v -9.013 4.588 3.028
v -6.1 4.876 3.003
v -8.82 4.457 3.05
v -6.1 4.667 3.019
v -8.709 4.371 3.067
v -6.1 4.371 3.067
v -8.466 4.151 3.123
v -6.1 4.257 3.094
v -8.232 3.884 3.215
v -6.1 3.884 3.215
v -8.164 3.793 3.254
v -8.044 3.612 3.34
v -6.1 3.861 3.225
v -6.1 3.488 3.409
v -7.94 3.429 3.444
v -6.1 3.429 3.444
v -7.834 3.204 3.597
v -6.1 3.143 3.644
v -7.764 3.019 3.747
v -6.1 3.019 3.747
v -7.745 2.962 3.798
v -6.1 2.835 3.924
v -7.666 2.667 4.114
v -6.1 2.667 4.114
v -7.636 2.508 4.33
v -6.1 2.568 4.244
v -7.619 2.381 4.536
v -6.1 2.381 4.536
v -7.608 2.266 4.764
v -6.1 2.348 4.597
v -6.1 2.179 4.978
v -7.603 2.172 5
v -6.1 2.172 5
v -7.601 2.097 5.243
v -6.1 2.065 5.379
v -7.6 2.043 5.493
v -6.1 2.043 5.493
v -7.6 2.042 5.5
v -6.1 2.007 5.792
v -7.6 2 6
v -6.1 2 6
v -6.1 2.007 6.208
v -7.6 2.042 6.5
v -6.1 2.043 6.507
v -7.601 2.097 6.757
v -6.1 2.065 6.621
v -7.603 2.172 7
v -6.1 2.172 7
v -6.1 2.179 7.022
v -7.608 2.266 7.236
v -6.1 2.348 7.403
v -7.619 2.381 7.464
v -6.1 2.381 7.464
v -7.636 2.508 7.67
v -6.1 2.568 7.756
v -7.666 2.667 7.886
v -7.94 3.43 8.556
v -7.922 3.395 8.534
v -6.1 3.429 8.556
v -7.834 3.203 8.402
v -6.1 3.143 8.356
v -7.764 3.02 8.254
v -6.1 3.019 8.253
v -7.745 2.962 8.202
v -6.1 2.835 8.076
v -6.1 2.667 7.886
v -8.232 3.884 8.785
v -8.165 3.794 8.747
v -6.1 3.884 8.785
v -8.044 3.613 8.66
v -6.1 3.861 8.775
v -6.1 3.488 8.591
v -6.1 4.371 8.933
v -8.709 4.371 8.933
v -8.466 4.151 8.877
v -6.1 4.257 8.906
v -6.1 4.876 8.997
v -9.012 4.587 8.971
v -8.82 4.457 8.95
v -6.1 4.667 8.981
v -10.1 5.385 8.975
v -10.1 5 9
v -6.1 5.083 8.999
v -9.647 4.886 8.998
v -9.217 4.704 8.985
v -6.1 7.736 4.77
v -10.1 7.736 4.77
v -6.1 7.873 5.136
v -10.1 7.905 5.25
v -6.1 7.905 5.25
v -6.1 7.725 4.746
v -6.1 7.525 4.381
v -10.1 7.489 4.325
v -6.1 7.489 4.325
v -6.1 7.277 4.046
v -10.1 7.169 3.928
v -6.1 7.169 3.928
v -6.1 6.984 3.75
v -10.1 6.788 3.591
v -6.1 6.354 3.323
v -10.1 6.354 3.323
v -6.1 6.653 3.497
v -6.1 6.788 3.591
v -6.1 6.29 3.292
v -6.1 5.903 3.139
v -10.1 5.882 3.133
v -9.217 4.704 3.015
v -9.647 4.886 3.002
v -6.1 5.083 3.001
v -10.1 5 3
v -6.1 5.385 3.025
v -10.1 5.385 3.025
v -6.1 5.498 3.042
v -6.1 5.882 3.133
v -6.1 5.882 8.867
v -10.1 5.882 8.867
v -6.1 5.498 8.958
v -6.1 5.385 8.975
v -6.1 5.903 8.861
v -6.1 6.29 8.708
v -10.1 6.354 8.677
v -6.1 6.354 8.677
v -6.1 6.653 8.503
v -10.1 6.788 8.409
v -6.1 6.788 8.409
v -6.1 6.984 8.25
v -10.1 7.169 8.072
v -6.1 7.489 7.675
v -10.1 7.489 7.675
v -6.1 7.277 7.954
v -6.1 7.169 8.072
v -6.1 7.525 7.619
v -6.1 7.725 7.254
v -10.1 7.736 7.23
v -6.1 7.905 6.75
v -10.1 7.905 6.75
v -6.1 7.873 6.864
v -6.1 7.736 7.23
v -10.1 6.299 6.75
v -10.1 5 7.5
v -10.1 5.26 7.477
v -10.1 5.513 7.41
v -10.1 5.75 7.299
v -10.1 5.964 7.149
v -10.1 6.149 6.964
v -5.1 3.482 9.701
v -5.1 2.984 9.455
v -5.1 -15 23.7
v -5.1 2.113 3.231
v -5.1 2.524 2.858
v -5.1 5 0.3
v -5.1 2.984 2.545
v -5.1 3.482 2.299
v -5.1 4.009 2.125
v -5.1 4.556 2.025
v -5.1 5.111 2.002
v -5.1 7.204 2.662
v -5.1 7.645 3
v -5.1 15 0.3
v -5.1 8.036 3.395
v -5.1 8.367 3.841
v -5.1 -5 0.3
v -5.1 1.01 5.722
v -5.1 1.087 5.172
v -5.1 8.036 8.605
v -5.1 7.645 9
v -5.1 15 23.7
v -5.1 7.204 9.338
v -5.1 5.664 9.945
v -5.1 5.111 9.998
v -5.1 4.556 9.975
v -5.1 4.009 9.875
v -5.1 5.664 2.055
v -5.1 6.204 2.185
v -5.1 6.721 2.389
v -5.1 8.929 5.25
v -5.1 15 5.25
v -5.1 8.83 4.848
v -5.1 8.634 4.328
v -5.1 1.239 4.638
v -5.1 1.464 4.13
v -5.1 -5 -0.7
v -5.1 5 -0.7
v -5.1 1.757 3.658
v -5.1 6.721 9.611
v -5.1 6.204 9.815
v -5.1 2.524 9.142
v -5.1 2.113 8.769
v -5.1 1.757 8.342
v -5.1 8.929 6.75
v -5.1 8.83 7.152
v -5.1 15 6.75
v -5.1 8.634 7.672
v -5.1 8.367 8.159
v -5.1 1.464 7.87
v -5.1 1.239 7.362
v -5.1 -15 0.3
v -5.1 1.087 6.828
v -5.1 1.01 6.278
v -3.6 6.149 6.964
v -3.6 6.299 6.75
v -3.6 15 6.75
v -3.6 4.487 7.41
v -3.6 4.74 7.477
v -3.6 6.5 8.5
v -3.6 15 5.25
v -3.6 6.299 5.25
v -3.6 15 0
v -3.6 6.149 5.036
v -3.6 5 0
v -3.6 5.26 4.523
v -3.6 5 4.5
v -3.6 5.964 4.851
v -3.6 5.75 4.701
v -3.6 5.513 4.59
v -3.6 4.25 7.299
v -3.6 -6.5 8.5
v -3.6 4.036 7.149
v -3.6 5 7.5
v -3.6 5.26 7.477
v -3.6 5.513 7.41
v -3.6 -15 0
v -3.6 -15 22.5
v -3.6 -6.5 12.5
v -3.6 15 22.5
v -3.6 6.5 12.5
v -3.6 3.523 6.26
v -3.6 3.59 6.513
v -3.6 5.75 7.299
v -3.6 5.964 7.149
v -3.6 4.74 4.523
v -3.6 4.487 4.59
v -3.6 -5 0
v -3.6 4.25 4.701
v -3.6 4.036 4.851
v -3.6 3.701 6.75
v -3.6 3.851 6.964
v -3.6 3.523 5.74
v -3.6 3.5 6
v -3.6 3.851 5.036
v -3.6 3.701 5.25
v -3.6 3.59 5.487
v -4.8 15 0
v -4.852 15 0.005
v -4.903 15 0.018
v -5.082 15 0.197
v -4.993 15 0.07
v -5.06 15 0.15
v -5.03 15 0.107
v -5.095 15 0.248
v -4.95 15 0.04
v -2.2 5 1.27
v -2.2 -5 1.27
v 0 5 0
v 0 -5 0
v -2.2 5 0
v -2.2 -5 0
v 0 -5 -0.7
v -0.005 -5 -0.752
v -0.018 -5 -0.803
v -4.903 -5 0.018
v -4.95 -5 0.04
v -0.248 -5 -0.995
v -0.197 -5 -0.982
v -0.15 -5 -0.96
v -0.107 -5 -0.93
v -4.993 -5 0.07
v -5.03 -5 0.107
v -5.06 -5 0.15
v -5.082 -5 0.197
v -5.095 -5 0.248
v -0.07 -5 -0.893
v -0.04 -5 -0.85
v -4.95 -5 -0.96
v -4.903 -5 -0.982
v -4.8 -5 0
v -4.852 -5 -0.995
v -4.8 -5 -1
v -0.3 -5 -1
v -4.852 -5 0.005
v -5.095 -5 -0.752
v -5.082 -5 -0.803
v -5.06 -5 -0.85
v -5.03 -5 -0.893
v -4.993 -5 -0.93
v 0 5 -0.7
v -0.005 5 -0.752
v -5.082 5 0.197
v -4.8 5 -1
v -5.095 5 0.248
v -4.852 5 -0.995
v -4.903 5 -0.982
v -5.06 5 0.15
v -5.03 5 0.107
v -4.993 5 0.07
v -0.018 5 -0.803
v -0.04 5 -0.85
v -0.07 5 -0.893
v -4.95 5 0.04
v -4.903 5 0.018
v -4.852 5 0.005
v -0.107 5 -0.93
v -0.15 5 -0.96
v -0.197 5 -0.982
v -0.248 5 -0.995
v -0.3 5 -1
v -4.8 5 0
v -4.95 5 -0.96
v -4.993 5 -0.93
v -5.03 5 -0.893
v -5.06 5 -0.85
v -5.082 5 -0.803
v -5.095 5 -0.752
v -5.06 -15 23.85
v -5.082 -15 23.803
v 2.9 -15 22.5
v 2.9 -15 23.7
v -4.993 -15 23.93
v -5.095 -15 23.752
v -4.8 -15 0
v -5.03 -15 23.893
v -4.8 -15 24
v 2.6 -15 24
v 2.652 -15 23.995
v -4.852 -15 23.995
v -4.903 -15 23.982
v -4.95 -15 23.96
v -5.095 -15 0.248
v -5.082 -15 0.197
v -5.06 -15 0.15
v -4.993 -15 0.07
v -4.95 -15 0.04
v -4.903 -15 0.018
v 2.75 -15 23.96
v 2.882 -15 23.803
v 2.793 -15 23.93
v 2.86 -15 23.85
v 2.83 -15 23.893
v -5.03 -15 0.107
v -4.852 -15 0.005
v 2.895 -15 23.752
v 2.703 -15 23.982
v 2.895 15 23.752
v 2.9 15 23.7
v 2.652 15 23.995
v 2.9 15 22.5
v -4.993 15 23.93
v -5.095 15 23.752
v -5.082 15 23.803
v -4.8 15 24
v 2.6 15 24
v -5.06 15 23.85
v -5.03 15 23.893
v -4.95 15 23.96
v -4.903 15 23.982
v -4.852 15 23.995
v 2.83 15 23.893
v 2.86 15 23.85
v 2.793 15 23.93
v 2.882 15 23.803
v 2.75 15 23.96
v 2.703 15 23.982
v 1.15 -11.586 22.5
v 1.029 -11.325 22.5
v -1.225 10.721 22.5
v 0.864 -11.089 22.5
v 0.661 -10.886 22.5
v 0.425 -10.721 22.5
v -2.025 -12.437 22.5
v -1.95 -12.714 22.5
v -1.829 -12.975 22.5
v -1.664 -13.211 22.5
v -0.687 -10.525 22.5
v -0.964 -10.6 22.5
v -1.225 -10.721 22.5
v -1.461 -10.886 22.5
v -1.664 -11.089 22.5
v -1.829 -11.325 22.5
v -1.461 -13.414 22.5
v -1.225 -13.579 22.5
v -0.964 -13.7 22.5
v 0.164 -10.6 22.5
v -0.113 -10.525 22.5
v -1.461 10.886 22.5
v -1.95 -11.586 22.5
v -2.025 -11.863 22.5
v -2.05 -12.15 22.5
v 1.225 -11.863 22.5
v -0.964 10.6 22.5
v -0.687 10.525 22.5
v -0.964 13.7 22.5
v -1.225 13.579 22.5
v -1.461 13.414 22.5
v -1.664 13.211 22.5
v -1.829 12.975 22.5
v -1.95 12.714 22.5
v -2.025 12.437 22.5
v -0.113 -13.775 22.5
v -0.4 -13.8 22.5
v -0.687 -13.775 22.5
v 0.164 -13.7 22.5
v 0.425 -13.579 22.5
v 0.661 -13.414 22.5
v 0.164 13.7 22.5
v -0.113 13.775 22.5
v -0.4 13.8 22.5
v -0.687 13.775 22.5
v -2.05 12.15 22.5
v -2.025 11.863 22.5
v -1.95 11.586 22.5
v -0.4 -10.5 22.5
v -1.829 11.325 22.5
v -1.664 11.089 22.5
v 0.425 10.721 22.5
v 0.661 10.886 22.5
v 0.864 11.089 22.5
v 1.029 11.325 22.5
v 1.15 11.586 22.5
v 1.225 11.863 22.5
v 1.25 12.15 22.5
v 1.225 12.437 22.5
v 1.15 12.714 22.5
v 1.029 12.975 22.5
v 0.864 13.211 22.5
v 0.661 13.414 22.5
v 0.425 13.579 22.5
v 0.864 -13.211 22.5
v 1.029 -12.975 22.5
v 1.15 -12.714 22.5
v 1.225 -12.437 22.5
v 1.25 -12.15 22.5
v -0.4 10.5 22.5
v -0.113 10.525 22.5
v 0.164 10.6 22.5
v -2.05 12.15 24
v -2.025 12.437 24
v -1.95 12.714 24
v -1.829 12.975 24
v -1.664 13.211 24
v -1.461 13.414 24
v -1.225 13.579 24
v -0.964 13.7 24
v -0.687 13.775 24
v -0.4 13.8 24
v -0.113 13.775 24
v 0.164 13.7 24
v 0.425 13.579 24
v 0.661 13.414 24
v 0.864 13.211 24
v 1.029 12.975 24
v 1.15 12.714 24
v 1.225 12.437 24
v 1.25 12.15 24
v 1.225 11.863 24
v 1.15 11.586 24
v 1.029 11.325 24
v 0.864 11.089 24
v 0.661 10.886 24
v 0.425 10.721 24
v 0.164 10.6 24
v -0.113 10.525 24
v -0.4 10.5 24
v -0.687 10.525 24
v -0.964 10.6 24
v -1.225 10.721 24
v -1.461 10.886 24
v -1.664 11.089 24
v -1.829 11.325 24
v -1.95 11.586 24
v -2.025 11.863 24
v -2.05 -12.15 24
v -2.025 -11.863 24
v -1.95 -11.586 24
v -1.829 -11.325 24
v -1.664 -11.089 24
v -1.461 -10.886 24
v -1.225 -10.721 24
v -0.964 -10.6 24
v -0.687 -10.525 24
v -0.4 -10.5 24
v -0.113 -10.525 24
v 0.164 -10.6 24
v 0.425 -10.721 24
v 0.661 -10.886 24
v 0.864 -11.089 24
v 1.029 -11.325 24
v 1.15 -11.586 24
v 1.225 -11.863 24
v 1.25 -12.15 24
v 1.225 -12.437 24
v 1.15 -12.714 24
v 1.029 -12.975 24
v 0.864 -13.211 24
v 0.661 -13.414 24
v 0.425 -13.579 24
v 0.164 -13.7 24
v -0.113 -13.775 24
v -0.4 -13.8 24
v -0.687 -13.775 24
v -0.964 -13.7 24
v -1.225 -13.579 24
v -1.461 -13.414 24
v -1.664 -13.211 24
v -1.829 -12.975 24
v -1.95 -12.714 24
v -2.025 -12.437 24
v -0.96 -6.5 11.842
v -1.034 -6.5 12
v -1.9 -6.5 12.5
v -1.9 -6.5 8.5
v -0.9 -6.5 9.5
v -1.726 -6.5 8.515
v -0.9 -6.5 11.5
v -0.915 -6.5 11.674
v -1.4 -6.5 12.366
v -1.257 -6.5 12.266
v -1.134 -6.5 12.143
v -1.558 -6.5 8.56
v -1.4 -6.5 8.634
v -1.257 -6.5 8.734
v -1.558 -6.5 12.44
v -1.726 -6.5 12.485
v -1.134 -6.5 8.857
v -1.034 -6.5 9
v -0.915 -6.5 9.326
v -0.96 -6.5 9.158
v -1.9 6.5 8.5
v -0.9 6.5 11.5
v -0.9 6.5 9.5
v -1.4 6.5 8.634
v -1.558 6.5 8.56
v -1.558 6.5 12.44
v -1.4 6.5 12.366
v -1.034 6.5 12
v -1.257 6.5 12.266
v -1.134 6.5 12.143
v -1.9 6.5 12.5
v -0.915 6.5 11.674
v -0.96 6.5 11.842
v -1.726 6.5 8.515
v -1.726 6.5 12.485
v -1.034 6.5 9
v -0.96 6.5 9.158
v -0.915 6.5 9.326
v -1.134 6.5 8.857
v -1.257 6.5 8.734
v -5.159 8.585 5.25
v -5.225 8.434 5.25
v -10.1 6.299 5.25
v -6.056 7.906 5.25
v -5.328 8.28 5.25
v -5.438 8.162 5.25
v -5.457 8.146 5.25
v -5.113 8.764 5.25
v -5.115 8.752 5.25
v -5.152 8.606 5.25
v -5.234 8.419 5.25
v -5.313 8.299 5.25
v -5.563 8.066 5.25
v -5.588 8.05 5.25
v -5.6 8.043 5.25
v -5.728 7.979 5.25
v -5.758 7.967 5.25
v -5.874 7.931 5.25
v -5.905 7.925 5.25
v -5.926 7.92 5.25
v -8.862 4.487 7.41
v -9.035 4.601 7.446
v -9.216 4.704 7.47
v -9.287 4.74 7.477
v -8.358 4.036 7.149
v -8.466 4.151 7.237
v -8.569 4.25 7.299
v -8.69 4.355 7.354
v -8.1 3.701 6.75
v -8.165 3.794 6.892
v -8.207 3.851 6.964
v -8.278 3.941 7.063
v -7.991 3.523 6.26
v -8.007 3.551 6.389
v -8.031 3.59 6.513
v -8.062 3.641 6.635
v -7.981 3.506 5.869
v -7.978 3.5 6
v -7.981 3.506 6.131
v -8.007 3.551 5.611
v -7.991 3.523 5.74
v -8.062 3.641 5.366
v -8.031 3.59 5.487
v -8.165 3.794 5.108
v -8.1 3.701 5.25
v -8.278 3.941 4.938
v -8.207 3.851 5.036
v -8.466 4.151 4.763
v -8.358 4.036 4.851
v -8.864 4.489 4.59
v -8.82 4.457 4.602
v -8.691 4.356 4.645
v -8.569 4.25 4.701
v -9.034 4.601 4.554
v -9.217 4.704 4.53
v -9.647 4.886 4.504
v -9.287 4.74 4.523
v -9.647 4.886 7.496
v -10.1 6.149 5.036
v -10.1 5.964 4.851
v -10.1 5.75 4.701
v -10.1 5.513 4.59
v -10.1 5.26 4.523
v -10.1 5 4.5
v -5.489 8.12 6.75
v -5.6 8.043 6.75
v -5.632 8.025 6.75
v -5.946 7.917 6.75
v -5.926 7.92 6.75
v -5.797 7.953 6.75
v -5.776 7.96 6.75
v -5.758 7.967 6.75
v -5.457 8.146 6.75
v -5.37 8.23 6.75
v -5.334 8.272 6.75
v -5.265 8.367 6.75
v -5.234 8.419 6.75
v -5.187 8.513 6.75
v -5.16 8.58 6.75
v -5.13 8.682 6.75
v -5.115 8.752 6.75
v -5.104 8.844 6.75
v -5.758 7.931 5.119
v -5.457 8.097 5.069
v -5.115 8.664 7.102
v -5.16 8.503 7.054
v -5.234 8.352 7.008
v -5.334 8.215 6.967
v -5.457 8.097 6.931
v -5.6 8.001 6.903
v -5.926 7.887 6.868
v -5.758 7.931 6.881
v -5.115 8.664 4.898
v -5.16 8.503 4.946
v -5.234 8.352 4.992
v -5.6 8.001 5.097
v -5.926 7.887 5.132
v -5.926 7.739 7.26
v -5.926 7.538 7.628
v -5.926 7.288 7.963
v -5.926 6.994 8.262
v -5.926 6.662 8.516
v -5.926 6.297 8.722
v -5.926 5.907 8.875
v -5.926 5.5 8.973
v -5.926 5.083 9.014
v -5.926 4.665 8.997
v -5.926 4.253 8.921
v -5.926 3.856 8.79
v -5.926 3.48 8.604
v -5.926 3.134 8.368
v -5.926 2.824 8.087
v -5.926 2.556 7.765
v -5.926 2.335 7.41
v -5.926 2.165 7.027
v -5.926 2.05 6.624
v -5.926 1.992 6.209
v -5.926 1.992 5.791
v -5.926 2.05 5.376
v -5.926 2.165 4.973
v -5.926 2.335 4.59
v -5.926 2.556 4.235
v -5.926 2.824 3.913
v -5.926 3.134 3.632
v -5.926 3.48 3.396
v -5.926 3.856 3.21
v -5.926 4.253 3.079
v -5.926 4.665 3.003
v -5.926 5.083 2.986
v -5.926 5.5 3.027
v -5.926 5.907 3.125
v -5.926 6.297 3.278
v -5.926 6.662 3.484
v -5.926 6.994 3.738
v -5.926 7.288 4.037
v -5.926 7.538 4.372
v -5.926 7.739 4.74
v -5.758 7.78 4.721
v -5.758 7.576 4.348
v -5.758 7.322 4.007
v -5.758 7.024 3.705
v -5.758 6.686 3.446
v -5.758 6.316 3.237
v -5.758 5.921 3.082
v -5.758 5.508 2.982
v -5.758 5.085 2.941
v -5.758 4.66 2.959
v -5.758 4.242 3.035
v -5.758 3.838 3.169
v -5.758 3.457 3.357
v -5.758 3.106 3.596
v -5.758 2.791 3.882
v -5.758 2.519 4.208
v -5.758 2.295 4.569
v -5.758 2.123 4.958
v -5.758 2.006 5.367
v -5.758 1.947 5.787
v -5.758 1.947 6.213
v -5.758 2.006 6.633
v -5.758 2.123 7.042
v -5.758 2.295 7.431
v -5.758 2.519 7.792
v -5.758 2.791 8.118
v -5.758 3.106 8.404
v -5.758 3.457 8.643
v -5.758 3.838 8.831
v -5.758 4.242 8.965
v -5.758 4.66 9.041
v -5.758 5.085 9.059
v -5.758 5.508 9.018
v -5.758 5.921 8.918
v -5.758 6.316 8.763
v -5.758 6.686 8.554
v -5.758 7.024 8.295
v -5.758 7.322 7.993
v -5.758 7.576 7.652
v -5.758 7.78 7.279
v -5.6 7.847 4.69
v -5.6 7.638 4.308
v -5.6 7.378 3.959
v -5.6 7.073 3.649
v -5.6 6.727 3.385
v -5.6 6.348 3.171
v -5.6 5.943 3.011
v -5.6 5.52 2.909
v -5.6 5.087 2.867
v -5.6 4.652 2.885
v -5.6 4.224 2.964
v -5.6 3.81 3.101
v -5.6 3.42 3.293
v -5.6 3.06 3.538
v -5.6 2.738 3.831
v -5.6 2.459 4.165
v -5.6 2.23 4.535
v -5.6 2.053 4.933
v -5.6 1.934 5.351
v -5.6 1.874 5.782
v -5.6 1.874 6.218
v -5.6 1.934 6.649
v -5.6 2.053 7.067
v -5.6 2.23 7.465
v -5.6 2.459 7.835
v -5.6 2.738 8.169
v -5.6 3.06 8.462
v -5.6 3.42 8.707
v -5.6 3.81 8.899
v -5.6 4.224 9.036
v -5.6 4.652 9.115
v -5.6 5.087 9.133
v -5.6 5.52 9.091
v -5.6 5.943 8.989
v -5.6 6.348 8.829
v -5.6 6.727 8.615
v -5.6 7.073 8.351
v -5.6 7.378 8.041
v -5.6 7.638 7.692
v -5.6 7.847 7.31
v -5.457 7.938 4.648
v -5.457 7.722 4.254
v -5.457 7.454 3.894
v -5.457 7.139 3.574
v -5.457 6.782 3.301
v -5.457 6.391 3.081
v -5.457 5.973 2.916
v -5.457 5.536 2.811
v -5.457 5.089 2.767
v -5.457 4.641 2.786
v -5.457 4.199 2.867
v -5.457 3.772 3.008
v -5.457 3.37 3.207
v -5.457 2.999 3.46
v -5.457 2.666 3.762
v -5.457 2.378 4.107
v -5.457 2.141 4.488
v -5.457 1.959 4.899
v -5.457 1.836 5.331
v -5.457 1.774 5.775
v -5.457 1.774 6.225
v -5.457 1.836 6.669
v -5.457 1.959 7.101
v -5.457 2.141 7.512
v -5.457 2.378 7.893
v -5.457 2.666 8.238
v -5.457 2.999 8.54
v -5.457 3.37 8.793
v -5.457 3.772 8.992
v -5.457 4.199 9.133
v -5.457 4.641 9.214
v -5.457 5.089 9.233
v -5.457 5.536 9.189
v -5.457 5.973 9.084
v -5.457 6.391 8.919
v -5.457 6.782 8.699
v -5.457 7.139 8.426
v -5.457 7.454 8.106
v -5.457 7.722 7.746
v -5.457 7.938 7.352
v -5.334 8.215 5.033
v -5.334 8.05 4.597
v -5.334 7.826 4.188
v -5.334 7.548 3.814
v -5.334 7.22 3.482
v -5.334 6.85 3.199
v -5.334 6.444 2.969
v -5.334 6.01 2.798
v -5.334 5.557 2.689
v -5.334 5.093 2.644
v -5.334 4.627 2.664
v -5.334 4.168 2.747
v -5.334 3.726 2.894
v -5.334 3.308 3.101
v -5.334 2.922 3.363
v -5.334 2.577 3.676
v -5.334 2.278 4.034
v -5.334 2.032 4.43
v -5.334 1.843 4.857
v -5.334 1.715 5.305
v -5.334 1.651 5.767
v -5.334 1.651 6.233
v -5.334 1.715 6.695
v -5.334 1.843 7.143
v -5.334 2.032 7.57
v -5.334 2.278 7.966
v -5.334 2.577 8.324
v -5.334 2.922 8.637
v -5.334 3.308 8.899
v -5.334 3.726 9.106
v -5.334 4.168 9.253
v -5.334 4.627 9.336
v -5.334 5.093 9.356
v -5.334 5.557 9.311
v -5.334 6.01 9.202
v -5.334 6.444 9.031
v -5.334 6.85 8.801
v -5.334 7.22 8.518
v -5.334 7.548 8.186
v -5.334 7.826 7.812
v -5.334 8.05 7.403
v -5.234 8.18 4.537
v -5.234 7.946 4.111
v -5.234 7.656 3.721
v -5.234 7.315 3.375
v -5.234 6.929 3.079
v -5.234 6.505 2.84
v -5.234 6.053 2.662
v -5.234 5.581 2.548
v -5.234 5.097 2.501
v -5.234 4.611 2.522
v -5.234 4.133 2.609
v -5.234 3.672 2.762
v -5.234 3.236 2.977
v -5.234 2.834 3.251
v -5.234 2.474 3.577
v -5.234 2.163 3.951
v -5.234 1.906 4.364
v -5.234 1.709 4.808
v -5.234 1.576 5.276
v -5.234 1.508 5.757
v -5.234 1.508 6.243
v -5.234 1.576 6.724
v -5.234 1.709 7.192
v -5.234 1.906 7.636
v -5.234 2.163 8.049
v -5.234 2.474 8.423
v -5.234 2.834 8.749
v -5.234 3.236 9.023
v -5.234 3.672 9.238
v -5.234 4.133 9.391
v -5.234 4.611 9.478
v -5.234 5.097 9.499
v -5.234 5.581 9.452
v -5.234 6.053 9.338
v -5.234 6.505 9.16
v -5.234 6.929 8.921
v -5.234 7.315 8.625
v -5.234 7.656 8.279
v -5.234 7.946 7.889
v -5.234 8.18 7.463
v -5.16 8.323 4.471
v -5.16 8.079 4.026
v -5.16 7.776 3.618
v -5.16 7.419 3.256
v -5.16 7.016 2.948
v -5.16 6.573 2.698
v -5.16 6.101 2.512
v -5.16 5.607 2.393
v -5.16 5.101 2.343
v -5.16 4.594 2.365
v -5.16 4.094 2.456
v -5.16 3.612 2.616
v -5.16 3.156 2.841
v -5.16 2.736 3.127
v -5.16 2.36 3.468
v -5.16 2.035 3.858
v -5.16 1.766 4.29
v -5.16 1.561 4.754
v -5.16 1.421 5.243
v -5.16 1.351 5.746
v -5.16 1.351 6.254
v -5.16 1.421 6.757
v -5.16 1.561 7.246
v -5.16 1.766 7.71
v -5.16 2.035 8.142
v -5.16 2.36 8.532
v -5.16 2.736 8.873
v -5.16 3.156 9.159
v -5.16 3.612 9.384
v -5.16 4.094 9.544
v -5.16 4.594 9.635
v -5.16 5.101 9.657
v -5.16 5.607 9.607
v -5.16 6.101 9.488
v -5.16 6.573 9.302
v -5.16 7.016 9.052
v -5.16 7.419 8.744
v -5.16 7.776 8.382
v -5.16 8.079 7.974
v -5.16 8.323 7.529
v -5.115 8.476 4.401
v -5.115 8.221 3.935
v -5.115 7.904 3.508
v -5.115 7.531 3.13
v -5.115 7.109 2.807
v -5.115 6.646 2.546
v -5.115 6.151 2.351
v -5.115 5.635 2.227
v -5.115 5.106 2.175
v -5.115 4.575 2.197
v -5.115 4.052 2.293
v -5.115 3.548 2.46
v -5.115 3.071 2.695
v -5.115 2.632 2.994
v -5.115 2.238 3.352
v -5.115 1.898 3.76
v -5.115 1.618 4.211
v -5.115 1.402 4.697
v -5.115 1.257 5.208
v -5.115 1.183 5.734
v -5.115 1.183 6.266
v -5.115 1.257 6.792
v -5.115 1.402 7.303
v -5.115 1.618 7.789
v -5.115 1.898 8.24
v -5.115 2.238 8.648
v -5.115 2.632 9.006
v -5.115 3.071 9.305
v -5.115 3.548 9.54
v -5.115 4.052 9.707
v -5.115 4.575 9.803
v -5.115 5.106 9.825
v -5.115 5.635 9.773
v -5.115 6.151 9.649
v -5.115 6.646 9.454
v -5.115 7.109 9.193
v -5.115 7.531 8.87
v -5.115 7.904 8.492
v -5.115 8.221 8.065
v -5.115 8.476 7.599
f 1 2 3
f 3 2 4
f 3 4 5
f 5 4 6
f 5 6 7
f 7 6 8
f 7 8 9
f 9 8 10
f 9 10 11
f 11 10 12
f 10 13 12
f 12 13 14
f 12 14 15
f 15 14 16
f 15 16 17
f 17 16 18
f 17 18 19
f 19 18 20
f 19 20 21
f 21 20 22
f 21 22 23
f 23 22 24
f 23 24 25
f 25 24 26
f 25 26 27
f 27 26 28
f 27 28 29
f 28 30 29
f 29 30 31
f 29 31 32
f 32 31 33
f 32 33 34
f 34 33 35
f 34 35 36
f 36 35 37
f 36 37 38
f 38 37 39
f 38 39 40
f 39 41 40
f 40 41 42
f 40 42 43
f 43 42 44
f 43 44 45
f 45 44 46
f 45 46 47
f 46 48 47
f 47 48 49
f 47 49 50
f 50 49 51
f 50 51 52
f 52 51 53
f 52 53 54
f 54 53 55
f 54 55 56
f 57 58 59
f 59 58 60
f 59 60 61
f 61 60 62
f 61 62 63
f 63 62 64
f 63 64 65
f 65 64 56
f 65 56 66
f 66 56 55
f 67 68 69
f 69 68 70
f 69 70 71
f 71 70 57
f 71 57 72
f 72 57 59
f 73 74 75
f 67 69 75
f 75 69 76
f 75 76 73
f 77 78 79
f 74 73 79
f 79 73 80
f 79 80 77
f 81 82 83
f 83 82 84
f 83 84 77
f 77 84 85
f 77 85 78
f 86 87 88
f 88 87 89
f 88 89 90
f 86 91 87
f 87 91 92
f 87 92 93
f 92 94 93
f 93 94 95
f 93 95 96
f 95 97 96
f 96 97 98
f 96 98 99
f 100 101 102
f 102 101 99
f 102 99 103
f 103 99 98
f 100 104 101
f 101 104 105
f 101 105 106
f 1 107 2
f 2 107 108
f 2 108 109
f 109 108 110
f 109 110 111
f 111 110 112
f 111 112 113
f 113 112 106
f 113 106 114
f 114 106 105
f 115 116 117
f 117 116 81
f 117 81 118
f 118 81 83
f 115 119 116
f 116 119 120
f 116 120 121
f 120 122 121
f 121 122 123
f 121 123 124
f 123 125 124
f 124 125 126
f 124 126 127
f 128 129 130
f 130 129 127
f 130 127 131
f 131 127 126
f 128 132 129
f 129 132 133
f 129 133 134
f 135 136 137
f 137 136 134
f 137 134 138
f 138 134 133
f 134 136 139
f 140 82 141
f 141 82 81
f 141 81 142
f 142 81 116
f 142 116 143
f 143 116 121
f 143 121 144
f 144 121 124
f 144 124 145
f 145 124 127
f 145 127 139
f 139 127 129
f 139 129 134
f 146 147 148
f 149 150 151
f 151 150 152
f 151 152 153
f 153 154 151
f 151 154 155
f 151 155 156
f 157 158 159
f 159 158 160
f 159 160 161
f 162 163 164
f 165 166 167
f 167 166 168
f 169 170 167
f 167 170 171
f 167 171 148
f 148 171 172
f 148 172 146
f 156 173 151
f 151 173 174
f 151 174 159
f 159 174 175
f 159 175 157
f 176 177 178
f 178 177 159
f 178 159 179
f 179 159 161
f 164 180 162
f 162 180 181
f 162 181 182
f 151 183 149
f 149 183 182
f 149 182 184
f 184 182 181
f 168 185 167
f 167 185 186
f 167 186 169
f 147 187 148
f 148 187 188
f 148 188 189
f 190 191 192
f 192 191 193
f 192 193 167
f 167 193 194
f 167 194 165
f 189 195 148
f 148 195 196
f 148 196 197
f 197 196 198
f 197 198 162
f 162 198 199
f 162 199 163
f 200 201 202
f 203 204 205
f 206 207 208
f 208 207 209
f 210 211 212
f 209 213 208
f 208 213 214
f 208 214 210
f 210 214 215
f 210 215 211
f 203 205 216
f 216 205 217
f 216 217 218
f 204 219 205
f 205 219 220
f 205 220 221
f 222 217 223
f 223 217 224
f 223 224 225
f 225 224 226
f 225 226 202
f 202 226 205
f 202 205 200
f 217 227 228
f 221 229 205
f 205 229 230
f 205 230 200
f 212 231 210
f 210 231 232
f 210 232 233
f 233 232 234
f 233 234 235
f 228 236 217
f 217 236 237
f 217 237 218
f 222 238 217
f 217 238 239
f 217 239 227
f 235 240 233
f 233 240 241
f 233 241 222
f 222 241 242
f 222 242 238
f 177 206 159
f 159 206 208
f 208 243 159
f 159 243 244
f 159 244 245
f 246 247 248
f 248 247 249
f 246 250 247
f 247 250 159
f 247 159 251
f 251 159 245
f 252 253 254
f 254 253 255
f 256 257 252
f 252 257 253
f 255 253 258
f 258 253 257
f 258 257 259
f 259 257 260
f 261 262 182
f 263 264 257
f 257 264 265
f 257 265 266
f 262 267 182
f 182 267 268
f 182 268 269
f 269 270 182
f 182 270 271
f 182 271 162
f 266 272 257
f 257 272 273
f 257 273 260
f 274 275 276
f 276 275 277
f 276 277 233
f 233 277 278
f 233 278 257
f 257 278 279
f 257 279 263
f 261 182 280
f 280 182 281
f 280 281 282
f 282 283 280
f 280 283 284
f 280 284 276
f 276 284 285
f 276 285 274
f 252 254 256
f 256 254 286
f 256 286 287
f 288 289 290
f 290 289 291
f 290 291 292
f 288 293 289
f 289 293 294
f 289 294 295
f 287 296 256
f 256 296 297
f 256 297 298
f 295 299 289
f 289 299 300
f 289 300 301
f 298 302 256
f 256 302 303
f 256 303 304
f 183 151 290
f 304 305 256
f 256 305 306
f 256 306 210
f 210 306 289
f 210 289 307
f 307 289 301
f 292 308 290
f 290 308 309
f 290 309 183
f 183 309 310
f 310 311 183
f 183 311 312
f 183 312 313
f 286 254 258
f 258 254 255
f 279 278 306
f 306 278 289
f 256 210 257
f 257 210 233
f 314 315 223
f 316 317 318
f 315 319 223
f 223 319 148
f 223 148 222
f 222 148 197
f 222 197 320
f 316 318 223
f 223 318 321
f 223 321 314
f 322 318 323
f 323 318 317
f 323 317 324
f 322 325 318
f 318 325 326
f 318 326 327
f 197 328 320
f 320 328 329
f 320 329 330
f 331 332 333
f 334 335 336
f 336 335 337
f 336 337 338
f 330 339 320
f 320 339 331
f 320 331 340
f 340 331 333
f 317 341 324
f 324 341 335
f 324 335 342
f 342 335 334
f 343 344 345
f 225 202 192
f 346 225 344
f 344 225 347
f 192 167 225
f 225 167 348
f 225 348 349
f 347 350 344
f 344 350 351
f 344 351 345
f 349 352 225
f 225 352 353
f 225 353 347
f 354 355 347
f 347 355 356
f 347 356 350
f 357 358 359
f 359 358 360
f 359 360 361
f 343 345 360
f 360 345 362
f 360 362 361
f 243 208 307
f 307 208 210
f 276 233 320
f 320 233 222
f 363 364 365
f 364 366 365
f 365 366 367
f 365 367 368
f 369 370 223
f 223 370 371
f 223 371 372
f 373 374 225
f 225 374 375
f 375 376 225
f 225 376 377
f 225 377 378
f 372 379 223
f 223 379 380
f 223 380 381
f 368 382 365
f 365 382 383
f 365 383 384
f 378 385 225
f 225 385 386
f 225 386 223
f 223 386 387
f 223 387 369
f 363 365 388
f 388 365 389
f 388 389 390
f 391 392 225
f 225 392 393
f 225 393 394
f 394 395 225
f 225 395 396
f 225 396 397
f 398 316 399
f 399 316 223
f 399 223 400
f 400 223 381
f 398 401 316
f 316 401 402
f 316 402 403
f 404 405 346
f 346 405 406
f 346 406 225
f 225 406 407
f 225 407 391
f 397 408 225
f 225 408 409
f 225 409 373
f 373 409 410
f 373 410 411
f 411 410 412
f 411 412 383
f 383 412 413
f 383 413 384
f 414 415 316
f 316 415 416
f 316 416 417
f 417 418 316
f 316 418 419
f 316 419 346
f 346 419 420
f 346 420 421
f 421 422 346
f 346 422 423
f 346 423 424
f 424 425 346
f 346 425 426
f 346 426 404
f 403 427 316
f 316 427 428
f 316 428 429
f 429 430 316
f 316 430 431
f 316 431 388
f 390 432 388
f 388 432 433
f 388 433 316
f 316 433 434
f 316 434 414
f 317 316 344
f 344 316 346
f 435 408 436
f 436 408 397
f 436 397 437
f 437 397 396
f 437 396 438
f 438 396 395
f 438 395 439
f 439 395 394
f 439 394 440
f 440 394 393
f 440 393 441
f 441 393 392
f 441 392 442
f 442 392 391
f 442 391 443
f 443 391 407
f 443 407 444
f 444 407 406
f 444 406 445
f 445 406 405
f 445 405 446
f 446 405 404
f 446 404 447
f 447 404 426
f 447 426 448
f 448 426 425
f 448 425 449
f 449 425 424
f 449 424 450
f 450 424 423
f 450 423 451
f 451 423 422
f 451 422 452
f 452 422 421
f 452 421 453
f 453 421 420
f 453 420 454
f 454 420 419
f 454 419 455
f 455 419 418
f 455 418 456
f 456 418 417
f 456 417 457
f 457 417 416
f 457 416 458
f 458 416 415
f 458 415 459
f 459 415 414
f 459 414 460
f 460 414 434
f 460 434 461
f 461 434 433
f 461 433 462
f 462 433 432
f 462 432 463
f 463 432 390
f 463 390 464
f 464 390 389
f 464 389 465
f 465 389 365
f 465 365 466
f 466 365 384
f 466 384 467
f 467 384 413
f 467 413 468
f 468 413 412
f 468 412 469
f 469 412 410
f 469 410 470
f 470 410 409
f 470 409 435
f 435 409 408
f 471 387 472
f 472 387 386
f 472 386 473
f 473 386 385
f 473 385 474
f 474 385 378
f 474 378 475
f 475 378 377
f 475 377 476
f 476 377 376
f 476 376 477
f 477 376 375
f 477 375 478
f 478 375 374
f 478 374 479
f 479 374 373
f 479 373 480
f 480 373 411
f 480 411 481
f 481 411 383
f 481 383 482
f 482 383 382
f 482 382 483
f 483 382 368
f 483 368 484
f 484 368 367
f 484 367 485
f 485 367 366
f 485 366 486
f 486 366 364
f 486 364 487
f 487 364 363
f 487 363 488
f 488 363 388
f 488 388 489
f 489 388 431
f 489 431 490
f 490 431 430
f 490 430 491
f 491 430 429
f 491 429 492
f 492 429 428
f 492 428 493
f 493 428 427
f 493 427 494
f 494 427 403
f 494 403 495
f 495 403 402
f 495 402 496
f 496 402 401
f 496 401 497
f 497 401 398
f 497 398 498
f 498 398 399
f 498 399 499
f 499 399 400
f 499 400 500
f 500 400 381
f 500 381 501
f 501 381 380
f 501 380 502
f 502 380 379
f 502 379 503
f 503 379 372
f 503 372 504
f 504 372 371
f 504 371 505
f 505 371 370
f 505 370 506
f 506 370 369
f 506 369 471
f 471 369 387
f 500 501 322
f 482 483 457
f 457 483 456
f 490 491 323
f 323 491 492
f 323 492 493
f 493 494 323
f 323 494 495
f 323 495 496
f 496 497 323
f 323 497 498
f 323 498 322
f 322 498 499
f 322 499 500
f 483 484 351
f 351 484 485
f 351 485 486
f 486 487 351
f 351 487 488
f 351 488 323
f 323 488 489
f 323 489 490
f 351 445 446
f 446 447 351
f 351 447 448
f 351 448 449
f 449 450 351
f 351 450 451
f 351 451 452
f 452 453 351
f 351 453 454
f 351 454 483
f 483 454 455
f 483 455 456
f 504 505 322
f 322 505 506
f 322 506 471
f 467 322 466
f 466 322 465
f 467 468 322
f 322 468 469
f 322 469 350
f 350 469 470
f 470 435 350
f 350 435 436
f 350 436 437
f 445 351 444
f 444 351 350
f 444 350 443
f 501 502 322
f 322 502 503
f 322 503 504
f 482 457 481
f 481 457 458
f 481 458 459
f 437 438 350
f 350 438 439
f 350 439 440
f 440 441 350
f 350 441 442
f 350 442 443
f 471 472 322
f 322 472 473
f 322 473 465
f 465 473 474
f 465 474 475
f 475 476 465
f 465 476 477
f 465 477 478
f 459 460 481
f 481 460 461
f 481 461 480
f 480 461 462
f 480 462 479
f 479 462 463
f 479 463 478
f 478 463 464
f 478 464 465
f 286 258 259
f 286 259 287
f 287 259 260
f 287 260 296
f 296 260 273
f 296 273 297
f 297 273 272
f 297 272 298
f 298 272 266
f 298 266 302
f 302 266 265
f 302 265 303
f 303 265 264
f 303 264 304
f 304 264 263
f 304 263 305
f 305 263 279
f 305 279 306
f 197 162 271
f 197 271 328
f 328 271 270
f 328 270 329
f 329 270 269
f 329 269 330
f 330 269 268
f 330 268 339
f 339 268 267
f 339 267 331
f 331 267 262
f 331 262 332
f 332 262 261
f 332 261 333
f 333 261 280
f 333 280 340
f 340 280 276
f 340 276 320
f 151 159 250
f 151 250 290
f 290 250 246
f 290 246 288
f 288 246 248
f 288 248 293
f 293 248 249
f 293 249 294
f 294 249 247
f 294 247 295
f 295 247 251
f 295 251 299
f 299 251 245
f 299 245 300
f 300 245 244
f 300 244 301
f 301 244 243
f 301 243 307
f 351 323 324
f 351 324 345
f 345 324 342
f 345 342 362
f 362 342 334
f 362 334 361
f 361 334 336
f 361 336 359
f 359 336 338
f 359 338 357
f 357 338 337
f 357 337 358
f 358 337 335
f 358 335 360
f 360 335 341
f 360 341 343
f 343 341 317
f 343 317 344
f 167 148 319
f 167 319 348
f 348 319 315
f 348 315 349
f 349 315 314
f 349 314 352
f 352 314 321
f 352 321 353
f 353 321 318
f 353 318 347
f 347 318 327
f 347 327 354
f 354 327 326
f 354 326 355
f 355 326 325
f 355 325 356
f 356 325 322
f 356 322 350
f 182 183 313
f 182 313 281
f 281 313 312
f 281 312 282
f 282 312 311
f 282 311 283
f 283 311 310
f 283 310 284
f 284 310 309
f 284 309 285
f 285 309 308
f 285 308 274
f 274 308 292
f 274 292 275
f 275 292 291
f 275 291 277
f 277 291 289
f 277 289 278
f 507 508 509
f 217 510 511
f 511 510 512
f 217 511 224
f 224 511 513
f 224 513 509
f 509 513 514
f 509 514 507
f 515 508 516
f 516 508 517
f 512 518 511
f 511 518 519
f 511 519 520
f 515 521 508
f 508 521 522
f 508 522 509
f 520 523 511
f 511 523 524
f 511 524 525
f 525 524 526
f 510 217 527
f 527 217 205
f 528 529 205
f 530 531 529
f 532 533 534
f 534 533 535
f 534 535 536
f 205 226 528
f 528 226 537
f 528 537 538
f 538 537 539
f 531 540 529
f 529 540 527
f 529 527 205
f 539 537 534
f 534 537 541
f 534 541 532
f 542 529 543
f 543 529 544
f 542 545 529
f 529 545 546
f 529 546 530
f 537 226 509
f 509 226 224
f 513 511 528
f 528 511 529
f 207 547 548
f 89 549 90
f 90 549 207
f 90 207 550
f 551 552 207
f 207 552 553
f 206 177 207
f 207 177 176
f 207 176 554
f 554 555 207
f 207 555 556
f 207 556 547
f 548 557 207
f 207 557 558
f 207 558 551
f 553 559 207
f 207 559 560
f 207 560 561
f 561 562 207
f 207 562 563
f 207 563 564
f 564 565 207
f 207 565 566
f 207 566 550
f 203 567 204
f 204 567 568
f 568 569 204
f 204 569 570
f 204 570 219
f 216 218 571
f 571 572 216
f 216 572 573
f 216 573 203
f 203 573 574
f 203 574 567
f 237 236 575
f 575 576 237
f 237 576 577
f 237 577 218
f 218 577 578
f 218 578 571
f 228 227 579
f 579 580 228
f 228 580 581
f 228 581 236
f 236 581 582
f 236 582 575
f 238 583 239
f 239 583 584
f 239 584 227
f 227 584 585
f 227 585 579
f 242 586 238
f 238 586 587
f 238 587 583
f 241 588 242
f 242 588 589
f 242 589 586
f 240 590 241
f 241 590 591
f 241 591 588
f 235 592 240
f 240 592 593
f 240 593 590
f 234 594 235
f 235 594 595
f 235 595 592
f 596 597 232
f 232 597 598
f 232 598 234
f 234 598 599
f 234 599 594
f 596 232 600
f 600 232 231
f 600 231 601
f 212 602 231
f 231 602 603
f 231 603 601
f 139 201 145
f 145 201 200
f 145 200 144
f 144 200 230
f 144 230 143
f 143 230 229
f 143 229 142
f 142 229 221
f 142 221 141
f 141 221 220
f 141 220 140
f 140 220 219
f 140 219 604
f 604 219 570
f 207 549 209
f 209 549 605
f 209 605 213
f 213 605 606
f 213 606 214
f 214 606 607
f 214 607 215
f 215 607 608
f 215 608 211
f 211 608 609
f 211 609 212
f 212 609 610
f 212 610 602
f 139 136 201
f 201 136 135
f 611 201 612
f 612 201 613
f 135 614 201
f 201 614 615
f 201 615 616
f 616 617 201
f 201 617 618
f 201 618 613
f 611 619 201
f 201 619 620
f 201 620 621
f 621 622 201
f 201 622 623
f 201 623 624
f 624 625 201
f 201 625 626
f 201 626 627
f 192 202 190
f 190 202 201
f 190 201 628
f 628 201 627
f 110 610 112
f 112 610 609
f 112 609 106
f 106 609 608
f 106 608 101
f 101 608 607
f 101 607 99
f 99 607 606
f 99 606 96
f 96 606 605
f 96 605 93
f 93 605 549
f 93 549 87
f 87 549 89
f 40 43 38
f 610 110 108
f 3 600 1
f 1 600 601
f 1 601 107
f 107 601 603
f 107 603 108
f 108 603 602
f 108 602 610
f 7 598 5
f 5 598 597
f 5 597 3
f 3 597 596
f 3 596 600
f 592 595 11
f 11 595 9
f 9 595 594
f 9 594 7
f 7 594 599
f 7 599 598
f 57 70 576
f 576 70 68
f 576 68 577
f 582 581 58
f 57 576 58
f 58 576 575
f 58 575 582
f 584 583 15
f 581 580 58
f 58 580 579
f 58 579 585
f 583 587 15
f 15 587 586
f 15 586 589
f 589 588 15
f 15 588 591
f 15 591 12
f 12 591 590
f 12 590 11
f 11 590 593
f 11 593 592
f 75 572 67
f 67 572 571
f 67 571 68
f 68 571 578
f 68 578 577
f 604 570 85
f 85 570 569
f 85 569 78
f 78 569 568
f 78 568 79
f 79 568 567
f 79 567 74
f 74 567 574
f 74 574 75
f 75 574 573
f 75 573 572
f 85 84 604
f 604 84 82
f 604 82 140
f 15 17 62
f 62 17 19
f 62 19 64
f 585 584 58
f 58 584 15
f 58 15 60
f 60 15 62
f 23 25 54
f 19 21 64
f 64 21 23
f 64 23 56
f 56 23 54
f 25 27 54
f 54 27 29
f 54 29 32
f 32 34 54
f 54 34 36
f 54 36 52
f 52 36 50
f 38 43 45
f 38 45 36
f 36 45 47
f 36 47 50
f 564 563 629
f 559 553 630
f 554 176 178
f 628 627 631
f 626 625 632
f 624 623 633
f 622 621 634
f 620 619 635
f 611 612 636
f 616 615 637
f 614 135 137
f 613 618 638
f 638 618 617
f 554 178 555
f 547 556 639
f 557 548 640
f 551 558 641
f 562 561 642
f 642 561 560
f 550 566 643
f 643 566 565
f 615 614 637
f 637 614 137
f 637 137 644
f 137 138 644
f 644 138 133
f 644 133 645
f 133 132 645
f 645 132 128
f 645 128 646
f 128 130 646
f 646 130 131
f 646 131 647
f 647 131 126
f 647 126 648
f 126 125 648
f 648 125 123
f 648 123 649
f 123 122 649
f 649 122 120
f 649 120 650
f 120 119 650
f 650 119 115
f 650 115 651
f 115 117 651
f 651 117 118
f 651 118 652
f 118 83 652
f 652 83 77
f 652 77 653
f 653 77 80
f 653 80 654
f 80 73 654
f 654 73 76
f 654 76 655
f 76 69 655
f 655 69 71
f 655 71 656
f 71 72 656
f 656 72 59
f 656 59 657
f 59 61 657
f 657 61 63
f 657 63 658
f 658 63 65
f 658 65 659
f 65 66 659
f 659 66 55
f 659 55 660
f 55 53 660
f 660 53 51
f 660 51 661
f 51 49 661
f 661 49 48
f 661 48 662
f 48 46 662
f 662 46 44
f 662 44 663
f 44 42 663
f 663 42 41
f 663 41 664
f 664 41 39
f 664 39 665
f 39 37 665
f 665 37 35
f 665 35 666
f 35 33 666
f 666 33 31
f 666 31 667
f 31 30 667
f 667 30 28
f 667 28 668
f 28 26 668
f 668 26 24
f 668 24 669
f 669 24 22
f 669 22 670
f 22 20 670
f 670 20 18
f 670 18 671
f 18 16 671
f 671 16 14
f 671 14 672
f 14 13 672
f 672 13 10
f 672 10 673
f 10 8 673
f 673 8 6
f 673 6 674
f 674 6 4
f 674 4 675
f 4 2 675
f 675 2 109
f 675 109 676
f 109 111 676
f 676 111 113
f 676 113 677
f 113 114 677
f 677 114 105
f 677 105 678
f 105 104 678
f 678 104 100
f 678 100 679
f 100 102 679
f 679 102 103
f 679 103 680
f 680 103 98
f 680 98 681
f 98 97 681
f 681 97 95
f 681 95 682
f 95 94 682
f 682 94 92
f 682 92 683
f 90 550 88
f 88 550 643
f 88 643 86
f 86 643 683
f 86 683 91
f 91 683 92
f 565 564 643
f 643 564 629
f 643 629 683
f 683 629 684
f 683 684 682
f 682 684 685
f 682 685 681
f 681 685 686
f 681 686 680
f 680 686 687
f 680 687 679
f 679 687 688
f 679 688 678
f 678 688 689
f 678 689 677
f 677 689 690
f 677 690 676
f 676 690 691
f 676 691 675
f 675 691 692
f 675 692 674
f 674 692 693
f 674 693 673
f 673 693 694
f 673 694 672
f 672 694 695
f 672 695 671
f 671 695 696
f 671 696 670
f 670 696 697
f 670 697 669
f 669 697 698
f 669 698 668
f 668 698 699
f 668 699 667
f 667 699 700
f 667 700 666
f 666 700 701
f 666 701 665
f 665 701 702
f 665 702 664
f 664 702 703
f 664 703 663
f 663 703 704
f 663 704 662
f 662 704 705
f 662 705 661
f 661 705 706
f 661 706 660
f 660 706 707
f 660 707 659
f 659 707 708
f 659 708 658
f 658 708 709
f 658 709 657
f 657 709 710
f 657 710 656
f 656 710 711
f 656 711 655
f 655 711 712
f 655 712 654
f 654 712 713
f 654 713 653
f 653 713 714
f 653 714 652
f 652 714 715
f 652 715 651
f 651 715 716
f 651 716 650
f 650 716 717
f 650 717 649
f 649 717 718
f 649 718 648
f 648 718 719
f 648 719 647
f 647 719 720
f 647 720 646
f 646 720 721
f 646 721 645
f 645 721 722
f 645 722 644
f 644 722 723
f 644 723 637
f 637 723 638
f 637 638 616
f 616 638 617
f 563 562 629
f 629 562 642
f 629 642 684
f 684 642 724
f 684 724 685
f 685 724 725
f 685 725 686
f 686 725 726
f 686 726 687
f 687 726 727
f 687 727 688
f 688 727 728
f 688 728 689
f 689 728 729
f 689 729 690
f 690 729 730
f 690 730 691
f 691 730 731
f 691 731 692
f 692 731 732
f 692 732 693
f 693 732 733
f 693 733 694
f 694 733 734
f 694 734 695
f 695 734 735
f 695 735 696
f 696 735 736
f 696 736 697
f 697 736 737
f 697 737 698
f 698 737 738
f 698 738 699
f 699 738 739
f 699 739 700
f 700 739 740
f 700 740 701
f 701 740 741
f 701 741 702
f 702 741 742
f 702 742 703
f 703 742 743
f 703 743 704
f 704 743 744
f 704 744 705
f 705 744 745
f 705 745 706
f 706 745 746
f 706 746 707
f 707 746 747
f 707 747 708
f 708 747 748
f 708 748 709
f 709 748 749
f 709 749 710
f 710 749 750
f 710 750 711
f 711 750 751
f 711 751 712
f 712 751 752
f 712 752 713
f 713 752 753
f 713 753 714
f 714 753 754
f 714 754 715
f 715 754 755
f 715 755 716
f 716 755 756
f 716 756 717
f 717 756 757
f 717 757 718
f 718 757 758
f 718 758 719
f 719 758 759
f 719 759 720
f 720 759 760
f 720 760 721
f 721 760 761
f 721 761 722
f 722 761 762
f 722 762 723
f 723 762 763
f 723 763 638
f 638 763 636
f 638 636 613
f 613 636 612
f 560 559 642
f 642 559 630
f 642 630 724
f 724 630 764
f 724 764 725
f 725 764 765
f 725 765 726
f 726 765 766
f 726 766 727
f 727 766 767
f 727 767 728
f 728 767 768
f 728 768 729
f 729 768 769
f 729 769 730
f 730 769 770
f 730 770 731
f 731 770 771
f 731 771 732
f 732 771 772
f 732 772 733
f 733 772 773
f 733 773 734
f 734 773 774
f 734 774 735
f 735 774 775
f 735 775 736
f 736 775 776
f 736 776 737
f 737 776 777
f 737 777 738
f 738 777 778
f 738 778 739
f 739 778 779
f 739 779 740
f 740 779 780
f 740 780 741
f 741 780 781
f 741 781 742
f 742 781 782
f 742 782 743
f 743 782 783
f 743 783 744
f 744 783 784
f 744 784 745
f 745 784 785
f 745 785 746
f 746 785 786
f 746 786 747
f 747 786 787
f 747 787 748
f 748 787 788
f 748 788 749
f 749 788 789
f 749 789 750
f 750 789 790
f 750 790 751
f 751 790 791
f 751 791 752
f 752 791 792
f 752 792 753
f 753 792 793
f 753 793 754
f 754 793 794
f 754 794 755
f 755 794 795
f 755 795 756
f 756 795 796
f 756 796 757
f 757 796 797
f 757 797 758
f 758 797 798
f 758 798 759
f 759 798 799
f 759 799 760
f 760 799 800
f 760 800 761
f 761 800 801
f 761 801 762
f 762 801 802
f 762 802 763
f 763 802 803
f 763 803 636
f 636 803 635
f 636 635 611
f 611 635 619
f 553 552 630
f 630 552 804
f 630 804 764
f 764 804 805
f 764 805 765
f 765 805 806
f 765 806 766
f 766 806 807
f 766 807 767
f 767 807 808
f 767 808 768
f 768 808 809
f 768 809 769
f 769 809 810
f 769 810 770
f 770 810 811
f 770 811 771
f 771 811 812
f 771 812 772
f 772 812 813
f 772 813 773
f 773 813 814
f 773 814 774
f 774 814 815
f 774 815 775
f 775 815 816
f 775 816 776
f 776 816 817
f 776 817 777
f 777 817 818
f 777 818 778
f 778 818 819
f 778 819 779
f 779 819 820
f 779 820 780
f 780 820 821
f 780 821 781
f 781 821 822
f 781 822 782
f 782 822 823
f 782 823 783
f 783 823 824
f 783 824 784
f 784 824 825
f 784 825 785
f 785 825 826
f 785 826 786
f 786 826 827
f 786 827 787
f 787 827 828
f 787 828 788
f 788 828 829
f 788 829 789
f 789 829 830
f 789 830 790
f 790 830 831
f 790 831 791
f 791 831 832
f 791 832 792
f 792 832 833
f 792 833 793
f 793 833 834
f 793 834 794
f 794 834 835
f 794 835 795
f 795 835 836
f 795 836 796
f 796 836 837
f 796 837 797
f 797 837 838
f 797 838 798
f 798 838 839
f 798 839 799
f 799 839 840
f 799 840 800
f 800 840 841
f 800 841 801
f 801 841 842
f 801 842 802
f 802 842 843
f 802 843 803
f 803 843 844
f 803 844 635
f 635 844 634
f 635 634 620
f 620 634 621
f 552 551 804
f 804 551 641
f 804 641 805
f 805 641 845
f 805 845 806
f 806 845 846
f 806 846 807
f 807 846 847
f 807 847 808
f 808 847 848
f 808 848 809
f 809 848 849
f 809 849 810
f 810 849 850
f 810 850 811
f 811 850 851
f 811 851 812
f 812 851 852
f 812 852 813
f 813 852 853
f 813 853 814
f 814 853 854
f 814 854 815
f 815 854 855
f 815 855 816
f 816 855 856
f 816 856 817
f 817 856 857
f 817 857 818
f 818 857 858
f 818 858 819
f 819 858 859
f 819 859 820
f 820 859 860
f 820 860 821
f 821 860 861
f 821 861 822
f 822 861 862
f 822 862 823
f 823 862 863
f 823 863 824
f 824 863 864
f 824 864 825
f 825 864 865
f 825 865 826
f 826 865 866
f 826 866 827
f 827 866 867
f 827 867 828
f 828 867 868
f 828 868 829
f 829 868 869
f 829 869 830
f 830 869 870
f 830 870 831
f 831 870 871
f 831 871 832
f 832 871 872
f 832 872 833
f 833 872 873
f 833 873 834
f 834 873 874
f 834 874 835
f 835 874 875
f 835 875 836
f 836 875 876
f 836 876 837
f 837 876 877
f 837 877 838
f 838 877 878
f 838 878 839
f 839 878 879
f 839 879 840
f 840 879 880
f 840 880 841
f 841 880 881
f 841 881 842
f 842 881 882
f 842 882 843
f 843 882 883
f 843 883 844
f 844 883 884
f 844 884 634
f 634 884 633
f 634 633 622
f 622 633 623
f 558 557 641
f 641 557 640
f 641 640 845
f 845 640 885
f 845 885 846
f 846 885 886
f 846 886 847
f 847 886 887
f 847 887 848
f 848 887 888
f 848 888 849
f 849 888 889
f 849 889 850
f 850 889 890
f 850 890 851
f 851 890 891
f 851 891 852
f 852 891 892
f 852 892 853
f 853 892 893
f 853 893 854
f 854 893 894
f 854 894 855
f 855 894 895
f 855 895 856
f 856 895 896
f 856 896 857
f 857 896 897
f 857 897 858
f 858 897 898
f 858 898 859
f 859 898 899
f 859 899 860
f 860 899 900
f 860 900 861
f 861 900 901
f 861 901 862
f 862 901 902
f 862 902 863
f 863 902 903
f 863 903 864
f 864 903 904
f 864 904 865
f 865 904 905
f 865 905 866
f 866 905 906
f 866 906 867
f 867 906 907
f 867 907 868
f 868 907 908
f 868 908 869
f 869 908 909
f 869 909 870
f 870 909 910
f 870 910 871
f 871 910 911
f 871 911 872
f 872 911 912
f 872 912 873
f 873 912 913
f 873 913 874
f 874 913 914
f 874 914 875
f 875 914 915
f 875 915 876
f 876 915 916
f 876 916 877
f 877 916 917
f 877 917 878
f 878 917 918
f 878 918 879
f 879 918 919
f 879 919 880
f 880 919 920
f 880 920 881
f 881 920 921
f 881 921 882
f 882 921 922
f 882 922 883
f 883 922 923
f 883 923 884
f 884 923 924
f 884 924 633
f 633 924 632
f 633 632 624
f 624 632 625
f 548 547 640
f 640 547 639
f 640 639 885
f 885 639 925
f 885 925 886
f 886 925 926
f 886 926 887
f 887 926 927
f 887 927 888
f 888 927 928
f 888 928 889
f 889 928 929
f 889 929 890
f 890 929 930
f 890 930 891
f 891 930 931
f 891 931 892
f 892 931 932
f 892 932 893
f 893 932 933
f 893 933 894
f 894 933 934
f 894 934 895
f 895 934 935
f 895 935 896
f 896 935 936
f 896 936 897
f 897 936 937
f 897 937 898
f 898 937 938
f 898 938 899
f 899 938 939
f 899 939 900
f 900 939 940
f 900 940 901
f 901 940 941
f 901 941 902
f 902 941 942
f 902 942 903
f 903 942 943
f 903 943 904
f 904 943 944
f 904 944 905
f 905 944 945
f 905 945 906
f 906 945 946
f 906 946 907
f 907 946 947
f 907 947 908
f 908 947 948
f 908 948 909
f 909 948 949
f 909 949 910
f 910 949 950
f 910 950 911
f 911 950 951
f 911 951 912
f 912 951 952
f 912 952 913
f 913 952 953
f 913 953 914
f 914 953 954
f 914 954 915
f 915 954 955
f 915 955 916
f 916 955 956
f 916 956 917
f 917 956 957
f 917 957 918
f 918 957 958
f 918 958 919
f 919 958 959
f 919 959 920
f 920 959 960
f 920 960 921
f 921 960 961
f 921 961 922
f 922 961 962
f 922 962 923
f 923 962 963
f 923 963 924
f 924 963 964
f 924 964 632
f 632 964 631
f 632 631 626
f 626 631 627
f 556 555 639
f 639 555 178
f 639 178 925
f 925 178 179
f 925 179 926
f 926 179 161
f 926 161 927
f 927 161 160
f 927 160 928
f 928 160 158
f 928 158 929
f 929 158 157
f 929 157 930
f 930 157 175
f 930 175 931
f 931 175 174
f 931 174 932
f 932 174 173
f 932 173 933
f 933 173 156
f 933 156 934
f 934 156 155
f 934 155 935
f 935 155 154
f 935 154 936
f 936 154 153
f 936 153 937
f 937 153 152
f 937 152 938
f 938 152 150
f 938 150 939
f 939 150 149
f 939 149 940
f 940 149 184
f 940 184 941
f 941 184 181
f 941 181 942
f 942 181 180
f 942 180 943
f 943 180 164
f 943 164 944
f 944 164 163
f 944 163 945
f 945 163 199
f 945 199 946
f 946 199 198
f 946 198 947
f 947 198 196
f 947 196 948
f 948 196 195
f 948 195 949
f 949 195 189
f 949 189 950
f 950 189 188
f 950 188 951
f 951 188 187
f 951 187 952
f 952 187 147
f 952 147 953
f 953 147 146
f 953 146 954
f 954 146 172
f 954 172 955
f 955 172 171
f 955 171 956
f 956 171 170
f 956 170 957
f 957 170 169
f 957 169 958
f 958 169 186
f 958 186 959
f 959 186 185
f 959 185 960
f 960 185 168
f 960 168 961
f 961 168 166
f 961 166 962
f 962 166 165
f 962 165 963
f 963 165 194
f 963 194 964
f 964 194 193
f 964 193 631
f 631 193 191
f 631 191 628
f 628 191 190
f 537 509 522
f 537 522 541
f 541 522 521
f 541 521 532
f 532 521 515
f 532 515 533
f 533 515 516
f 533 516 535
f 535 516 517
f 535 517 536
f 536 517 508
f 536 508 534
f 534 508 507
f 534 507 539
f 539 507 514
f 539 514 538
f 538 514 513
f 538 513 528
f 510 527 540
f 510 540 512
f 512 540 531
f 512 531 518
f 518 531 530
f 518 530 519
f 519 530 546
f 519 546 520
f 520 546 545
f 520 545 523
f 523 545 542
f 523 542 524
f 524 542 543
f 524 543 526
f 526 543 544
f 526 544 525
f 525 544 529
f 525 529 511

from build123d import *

# Parameters (mm, degrees)
BOSS_EXTRUDE1_DEPTH      = 5
BOSS_EXTRUDE1_DEPTH_BACK = 5
SKETCH2_W                = 3.6
SKETCH2_H                = 10
BOSS_EXTRUDE2_DEPTH      = 1
SKETCH3_W                = 1
SKETCH3_H                = 10
BOSS_EXTRUDE3_DEPTH      = 1.5
SKETCH4_W                = 1.5
SKETCH4_H                = 30
SKETCH4_W_2              = 6.5
SKETCH4_R                = 1.65
BOSS_EXTRUDE4_DEPTH      = 1.5
FILLET1_R                = 0.3
SKETCH5_W                = 4
SKETCH5_H                = 13
BOSS_EXTRUDE5_DEPTH      = 2.7
CUT_EXTRUDE1_DEPTH       = 30.038767191
BOSS_EXTRUDE6_START      = -1.5
BOSS_EXTRUDE6_DEPTH      = 5
CUT_EXTRUDE2_START       = -3
SKETCH8_W                = 2.5
SKETCH8_H                = 6
CUT_EXTRUDE2_DEPTH       = 3
FILLET2_R                = 3
FILLET3_R                = 1
FILLET4_R                = 1


with BuildPart() as part:
    # Sketch1 → Boss-Extrude1 (new, two sides: drawn at the far end of the back side and taken through both)
    with BuildSketch(Plane(origin=(0, 0, 0), x_dir=(1, 0, 0), z_dir=(0, 1, 0)).offset(-BOSS_EXTRUDE1_DEPTH_BACK)):
        Polygon((0, 0), (-2.2, 0), (-2.2, -1.270170592), align=None)
    extrude(amount=BOSS_EXTRUDE1_DEPTH + BOSS_EXTRUDE1_DEPTH_BACK)

    # Sketch2 → Boss-Extrude2 (add)
    with BuildSketch(Plane(origin=(0, 0, 0), x_dir=(-1, 0, 0), z_dir=(0, 0, -1))):
        with Locations((1.8, 0)):
            Rectangle(SKETCH2_W, SKETCH2_H)
    extrude(amount=BOSS_EXTRUDE2_DEPTH)

    # Sketch3 → Boss-Extrude3 (add)
    with BuildSketch(Plane.ZY.offset(3.6)):
        Polygon((0, -5), (0, -15), (22.5, -15), (22.5, 15), (0, 15), (0, 5), align=None)
        with Locations((-0.5, 0)):
            Rectangle(SKETCH3_W, SKETCH3_H)
    extrude(amount=BOSS_EXTRUDE3_DEPTH)

    # Sketch4 → Boss-Extrude4 (add)
    # profile 1 of 2: a face of its own
    with BuildSketch(Plane.XY.offset(22.5)):
        with Locations((-4.35, 0)):
            Rectangle(SKETCH4_W, SKETCH4_H)
    # profile 2 of 2: a face of its own
    with BuildSketch(Plane.XY.offset(22.5)):
        with Locations((-0.35, 0)):
            Rectangle(SKETCH4_W_2, SKETCH4_H)
        with Locations((-0.4, -12.15)):
            Circle(SKETCH4_R, mode=Mode.SUBTRACT)
        with Locations((-0.4, 12.15)):
            Circle(SKETCH4_R, mode=Mode.SUBTRACT)
    extrude(amount=BOSS_EXTRUDE4_DEPTH)

    # Fillet1
    fillet1_edges = [part.edges().sort_by_distance(p)[0] for p in [
        (0, 0, -1),
        (-5.1, 10, 0),
        (-5.1, -10, 0),
        (-5.1, 0, -1),
        (2.9, 0, 24),
        (-5.1, 0, 24),
    ]]
    fillet(fillet1_edges, radius=FILLET1_R)

    # Sketch5 → Boss-Extrude5 (add)
    with BuildSketch(Plane(origin=(-3.6, 0, 0), x_dir=(0, 0, -1), z_dir=(1, 0, 0))):
        with Locations((-10.5, 0)):
            Rectangle(SKETCH5_W, SKETCH5_H)
    extrude(amount=BOSS_EXTRUDE5_DEPTH)

    # Sketch7 → Cut-Extrude1 (cut, through all)
    with BuildSketch(Plane(origin=(-3.6, 0, 0), x_dir=(0, 0, -1), z_dir=(1, 0, 0))):
        with BuildLine():
            Line((-5.25, 6.299038106), (-5.25, 15))
            Line((-5.25, 15), (-6.75, 15))
            Line((-6.75, 15), (-6.75, 6.299038106))
            ThreePointArc((-6.75, 6.299038106), (-6, 3.5), (-5.25, 6.299038106))
        make_face()
    extrude(amount=-CUT_EXTRUDE1_DEPTH, mode=Mode.SUBTRACT)

    # Sketch7<3> → Boss-Extrude6 (add)
    with BuildSketch(Plane(origin=(-3.6, 0, 0), x_dir=(0, 0, -1), z_dir=(1, 0, 0)).offset(BOSS_EXTRUDE6_START)):
        with BuildLine():
            Line((-6.75, 6.299038106), (-6.75, 7.90473751))
            ThreePointArc((-6.75, 7.90473751), (-7.837117307, 2.628291755), (-3, 5))
            ThreePointArc((-3, 5), (-3.628291755, 6.837117307), (-5.25, 7.90473751))
            Line((-5.25, 7.90473751), (-5.25, 6.299038106))
            ThreePointArc((-5.25, 6.299038106), (-4.700961894, 5.75), (-4.5, 5))
            ThreePointArc((-4.5, 5), (-6.75, 3.700961894), (-6.75, 6.299038106))
        make_face()
    extrude(amount=-BOSS_EXTRUDE6_DEPTH)

    # Sketch8 → Cut-Extrude2 (cut)
    with BuildSketch(Plane(origin=(0, 2, 0), x_dir=(-1, 0, 0), z_dir=(0, -1, 0)).offset(CUT_EXTRUDE2_START)):
        with Locations((8.85, -6)):
            Rectangle(SKETCH8_W, SKETCH8_H)
    extrude(amount=CUT_EXTRUDE2_DEPTH, mode=Mode.SUBTRACT)

    # Fillet2
    # the kernel refuses this fillet: 3 mm, written as the material it adds along each edge
    with BuildSketch(Plane(origin=(-7.6, 5, -4.395099729), x_dir=(-1, 0, 0), z_dir=(0, 0, 1))) as fillet2_piece_1_section:
        with BuildLine():
            CenterArc((3, 2.958039892), FILLET2_R, 180, 80.405931773)
            Line((0, 2.958039892), (0, 0))
            Line((0, 0), (2.5, 0))
        make_face()
    fillet2_piece_1 = extrude(amount=16.290199458, mode=Mode.PRIVATE)
    fillet2_piece_1 = fillet2_piece_1 & Plane(origin=(-7.6, 5, 6), x_dir=(0, 0.9682458365518564, 0.2499999999999917), z_dir=(1, 0, 0)) * Cylinder(3, 45, mode=Mode.PRIVATE)
    fillet2_piece_1 = fillet2_piece_1 - Plane(origin=(-7.6, 5, 6), x_dir=(0, 0.8660254037844379, -0.5000000000000012), z_dir=(1, 0, 0)) * Cylinder(1.5, 45, mode=Mode.PRIVATE)
    add(fillet2_piece_1)

    # Fillet3
    fillet3_edges = [part.edges().sort_by_distance(p)[0] for p in [
        (-5.1, 2.628291755, 7.837117307),
    ]]
    fillet(fillet3_edges, radius=FILLET3_R)

    # Fillet4
    fillet4_edges = [part.edges().sort_by_distance(p)[0] for p in [
        (-0.9, 0, 8.5),
        (-0.9, 0, 12.5),
    ]]
    fillet(fillet4_edges, radius=FILLET4_R)


solid = part.part
